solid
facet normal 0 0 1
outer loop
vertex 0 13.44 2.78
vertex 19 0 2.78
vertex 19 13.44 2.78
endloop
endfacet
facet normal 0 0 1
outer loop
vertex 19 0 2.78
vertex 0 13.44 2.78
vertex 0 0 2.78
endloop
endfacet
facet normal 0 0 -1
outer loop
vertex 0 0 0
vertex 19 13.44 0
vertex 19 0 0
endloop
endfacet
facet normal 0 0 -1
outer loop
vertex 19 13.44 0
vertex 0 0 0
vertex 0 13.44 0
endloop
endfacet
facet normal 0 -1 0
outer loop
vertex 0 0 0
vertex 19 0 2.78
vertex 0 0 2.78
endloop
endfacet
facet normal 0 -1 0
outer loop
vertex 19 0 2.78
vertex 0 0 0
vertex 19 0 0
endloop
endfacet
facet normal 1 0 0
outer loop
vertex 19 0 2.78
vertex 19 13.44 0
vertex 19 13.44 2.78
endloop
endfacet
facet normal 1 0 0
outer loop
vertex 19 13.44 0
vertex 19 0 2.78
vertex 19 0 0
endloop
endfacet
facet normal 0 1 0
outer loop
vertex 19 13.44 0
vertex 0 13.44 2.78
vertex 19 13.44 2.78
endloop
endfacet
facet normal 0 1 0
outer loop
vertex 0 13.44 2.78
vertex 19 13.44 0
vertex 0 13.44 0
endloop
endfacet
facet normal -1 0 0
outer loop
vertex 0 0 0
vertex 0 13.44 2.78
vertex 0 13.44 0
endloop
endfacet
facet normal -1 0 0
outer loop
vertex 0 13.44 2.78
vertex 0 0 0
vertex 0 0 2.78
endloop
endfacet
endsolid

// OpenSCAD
/* Warning, this is a very basic generator with a lot of approximation 
input data : [MFPF, 3YB, 19x13.44x2.78mm, 48, , C, C04-21543C]
generated by com.zoubworld.electronics.cad.model3d.Basic
Date : Sun Feb 15 10:50:49 CET 2026
*/

//body
color("black")
translate([0,0,0])
cube([19.0,13.44,2.78], center=false);
